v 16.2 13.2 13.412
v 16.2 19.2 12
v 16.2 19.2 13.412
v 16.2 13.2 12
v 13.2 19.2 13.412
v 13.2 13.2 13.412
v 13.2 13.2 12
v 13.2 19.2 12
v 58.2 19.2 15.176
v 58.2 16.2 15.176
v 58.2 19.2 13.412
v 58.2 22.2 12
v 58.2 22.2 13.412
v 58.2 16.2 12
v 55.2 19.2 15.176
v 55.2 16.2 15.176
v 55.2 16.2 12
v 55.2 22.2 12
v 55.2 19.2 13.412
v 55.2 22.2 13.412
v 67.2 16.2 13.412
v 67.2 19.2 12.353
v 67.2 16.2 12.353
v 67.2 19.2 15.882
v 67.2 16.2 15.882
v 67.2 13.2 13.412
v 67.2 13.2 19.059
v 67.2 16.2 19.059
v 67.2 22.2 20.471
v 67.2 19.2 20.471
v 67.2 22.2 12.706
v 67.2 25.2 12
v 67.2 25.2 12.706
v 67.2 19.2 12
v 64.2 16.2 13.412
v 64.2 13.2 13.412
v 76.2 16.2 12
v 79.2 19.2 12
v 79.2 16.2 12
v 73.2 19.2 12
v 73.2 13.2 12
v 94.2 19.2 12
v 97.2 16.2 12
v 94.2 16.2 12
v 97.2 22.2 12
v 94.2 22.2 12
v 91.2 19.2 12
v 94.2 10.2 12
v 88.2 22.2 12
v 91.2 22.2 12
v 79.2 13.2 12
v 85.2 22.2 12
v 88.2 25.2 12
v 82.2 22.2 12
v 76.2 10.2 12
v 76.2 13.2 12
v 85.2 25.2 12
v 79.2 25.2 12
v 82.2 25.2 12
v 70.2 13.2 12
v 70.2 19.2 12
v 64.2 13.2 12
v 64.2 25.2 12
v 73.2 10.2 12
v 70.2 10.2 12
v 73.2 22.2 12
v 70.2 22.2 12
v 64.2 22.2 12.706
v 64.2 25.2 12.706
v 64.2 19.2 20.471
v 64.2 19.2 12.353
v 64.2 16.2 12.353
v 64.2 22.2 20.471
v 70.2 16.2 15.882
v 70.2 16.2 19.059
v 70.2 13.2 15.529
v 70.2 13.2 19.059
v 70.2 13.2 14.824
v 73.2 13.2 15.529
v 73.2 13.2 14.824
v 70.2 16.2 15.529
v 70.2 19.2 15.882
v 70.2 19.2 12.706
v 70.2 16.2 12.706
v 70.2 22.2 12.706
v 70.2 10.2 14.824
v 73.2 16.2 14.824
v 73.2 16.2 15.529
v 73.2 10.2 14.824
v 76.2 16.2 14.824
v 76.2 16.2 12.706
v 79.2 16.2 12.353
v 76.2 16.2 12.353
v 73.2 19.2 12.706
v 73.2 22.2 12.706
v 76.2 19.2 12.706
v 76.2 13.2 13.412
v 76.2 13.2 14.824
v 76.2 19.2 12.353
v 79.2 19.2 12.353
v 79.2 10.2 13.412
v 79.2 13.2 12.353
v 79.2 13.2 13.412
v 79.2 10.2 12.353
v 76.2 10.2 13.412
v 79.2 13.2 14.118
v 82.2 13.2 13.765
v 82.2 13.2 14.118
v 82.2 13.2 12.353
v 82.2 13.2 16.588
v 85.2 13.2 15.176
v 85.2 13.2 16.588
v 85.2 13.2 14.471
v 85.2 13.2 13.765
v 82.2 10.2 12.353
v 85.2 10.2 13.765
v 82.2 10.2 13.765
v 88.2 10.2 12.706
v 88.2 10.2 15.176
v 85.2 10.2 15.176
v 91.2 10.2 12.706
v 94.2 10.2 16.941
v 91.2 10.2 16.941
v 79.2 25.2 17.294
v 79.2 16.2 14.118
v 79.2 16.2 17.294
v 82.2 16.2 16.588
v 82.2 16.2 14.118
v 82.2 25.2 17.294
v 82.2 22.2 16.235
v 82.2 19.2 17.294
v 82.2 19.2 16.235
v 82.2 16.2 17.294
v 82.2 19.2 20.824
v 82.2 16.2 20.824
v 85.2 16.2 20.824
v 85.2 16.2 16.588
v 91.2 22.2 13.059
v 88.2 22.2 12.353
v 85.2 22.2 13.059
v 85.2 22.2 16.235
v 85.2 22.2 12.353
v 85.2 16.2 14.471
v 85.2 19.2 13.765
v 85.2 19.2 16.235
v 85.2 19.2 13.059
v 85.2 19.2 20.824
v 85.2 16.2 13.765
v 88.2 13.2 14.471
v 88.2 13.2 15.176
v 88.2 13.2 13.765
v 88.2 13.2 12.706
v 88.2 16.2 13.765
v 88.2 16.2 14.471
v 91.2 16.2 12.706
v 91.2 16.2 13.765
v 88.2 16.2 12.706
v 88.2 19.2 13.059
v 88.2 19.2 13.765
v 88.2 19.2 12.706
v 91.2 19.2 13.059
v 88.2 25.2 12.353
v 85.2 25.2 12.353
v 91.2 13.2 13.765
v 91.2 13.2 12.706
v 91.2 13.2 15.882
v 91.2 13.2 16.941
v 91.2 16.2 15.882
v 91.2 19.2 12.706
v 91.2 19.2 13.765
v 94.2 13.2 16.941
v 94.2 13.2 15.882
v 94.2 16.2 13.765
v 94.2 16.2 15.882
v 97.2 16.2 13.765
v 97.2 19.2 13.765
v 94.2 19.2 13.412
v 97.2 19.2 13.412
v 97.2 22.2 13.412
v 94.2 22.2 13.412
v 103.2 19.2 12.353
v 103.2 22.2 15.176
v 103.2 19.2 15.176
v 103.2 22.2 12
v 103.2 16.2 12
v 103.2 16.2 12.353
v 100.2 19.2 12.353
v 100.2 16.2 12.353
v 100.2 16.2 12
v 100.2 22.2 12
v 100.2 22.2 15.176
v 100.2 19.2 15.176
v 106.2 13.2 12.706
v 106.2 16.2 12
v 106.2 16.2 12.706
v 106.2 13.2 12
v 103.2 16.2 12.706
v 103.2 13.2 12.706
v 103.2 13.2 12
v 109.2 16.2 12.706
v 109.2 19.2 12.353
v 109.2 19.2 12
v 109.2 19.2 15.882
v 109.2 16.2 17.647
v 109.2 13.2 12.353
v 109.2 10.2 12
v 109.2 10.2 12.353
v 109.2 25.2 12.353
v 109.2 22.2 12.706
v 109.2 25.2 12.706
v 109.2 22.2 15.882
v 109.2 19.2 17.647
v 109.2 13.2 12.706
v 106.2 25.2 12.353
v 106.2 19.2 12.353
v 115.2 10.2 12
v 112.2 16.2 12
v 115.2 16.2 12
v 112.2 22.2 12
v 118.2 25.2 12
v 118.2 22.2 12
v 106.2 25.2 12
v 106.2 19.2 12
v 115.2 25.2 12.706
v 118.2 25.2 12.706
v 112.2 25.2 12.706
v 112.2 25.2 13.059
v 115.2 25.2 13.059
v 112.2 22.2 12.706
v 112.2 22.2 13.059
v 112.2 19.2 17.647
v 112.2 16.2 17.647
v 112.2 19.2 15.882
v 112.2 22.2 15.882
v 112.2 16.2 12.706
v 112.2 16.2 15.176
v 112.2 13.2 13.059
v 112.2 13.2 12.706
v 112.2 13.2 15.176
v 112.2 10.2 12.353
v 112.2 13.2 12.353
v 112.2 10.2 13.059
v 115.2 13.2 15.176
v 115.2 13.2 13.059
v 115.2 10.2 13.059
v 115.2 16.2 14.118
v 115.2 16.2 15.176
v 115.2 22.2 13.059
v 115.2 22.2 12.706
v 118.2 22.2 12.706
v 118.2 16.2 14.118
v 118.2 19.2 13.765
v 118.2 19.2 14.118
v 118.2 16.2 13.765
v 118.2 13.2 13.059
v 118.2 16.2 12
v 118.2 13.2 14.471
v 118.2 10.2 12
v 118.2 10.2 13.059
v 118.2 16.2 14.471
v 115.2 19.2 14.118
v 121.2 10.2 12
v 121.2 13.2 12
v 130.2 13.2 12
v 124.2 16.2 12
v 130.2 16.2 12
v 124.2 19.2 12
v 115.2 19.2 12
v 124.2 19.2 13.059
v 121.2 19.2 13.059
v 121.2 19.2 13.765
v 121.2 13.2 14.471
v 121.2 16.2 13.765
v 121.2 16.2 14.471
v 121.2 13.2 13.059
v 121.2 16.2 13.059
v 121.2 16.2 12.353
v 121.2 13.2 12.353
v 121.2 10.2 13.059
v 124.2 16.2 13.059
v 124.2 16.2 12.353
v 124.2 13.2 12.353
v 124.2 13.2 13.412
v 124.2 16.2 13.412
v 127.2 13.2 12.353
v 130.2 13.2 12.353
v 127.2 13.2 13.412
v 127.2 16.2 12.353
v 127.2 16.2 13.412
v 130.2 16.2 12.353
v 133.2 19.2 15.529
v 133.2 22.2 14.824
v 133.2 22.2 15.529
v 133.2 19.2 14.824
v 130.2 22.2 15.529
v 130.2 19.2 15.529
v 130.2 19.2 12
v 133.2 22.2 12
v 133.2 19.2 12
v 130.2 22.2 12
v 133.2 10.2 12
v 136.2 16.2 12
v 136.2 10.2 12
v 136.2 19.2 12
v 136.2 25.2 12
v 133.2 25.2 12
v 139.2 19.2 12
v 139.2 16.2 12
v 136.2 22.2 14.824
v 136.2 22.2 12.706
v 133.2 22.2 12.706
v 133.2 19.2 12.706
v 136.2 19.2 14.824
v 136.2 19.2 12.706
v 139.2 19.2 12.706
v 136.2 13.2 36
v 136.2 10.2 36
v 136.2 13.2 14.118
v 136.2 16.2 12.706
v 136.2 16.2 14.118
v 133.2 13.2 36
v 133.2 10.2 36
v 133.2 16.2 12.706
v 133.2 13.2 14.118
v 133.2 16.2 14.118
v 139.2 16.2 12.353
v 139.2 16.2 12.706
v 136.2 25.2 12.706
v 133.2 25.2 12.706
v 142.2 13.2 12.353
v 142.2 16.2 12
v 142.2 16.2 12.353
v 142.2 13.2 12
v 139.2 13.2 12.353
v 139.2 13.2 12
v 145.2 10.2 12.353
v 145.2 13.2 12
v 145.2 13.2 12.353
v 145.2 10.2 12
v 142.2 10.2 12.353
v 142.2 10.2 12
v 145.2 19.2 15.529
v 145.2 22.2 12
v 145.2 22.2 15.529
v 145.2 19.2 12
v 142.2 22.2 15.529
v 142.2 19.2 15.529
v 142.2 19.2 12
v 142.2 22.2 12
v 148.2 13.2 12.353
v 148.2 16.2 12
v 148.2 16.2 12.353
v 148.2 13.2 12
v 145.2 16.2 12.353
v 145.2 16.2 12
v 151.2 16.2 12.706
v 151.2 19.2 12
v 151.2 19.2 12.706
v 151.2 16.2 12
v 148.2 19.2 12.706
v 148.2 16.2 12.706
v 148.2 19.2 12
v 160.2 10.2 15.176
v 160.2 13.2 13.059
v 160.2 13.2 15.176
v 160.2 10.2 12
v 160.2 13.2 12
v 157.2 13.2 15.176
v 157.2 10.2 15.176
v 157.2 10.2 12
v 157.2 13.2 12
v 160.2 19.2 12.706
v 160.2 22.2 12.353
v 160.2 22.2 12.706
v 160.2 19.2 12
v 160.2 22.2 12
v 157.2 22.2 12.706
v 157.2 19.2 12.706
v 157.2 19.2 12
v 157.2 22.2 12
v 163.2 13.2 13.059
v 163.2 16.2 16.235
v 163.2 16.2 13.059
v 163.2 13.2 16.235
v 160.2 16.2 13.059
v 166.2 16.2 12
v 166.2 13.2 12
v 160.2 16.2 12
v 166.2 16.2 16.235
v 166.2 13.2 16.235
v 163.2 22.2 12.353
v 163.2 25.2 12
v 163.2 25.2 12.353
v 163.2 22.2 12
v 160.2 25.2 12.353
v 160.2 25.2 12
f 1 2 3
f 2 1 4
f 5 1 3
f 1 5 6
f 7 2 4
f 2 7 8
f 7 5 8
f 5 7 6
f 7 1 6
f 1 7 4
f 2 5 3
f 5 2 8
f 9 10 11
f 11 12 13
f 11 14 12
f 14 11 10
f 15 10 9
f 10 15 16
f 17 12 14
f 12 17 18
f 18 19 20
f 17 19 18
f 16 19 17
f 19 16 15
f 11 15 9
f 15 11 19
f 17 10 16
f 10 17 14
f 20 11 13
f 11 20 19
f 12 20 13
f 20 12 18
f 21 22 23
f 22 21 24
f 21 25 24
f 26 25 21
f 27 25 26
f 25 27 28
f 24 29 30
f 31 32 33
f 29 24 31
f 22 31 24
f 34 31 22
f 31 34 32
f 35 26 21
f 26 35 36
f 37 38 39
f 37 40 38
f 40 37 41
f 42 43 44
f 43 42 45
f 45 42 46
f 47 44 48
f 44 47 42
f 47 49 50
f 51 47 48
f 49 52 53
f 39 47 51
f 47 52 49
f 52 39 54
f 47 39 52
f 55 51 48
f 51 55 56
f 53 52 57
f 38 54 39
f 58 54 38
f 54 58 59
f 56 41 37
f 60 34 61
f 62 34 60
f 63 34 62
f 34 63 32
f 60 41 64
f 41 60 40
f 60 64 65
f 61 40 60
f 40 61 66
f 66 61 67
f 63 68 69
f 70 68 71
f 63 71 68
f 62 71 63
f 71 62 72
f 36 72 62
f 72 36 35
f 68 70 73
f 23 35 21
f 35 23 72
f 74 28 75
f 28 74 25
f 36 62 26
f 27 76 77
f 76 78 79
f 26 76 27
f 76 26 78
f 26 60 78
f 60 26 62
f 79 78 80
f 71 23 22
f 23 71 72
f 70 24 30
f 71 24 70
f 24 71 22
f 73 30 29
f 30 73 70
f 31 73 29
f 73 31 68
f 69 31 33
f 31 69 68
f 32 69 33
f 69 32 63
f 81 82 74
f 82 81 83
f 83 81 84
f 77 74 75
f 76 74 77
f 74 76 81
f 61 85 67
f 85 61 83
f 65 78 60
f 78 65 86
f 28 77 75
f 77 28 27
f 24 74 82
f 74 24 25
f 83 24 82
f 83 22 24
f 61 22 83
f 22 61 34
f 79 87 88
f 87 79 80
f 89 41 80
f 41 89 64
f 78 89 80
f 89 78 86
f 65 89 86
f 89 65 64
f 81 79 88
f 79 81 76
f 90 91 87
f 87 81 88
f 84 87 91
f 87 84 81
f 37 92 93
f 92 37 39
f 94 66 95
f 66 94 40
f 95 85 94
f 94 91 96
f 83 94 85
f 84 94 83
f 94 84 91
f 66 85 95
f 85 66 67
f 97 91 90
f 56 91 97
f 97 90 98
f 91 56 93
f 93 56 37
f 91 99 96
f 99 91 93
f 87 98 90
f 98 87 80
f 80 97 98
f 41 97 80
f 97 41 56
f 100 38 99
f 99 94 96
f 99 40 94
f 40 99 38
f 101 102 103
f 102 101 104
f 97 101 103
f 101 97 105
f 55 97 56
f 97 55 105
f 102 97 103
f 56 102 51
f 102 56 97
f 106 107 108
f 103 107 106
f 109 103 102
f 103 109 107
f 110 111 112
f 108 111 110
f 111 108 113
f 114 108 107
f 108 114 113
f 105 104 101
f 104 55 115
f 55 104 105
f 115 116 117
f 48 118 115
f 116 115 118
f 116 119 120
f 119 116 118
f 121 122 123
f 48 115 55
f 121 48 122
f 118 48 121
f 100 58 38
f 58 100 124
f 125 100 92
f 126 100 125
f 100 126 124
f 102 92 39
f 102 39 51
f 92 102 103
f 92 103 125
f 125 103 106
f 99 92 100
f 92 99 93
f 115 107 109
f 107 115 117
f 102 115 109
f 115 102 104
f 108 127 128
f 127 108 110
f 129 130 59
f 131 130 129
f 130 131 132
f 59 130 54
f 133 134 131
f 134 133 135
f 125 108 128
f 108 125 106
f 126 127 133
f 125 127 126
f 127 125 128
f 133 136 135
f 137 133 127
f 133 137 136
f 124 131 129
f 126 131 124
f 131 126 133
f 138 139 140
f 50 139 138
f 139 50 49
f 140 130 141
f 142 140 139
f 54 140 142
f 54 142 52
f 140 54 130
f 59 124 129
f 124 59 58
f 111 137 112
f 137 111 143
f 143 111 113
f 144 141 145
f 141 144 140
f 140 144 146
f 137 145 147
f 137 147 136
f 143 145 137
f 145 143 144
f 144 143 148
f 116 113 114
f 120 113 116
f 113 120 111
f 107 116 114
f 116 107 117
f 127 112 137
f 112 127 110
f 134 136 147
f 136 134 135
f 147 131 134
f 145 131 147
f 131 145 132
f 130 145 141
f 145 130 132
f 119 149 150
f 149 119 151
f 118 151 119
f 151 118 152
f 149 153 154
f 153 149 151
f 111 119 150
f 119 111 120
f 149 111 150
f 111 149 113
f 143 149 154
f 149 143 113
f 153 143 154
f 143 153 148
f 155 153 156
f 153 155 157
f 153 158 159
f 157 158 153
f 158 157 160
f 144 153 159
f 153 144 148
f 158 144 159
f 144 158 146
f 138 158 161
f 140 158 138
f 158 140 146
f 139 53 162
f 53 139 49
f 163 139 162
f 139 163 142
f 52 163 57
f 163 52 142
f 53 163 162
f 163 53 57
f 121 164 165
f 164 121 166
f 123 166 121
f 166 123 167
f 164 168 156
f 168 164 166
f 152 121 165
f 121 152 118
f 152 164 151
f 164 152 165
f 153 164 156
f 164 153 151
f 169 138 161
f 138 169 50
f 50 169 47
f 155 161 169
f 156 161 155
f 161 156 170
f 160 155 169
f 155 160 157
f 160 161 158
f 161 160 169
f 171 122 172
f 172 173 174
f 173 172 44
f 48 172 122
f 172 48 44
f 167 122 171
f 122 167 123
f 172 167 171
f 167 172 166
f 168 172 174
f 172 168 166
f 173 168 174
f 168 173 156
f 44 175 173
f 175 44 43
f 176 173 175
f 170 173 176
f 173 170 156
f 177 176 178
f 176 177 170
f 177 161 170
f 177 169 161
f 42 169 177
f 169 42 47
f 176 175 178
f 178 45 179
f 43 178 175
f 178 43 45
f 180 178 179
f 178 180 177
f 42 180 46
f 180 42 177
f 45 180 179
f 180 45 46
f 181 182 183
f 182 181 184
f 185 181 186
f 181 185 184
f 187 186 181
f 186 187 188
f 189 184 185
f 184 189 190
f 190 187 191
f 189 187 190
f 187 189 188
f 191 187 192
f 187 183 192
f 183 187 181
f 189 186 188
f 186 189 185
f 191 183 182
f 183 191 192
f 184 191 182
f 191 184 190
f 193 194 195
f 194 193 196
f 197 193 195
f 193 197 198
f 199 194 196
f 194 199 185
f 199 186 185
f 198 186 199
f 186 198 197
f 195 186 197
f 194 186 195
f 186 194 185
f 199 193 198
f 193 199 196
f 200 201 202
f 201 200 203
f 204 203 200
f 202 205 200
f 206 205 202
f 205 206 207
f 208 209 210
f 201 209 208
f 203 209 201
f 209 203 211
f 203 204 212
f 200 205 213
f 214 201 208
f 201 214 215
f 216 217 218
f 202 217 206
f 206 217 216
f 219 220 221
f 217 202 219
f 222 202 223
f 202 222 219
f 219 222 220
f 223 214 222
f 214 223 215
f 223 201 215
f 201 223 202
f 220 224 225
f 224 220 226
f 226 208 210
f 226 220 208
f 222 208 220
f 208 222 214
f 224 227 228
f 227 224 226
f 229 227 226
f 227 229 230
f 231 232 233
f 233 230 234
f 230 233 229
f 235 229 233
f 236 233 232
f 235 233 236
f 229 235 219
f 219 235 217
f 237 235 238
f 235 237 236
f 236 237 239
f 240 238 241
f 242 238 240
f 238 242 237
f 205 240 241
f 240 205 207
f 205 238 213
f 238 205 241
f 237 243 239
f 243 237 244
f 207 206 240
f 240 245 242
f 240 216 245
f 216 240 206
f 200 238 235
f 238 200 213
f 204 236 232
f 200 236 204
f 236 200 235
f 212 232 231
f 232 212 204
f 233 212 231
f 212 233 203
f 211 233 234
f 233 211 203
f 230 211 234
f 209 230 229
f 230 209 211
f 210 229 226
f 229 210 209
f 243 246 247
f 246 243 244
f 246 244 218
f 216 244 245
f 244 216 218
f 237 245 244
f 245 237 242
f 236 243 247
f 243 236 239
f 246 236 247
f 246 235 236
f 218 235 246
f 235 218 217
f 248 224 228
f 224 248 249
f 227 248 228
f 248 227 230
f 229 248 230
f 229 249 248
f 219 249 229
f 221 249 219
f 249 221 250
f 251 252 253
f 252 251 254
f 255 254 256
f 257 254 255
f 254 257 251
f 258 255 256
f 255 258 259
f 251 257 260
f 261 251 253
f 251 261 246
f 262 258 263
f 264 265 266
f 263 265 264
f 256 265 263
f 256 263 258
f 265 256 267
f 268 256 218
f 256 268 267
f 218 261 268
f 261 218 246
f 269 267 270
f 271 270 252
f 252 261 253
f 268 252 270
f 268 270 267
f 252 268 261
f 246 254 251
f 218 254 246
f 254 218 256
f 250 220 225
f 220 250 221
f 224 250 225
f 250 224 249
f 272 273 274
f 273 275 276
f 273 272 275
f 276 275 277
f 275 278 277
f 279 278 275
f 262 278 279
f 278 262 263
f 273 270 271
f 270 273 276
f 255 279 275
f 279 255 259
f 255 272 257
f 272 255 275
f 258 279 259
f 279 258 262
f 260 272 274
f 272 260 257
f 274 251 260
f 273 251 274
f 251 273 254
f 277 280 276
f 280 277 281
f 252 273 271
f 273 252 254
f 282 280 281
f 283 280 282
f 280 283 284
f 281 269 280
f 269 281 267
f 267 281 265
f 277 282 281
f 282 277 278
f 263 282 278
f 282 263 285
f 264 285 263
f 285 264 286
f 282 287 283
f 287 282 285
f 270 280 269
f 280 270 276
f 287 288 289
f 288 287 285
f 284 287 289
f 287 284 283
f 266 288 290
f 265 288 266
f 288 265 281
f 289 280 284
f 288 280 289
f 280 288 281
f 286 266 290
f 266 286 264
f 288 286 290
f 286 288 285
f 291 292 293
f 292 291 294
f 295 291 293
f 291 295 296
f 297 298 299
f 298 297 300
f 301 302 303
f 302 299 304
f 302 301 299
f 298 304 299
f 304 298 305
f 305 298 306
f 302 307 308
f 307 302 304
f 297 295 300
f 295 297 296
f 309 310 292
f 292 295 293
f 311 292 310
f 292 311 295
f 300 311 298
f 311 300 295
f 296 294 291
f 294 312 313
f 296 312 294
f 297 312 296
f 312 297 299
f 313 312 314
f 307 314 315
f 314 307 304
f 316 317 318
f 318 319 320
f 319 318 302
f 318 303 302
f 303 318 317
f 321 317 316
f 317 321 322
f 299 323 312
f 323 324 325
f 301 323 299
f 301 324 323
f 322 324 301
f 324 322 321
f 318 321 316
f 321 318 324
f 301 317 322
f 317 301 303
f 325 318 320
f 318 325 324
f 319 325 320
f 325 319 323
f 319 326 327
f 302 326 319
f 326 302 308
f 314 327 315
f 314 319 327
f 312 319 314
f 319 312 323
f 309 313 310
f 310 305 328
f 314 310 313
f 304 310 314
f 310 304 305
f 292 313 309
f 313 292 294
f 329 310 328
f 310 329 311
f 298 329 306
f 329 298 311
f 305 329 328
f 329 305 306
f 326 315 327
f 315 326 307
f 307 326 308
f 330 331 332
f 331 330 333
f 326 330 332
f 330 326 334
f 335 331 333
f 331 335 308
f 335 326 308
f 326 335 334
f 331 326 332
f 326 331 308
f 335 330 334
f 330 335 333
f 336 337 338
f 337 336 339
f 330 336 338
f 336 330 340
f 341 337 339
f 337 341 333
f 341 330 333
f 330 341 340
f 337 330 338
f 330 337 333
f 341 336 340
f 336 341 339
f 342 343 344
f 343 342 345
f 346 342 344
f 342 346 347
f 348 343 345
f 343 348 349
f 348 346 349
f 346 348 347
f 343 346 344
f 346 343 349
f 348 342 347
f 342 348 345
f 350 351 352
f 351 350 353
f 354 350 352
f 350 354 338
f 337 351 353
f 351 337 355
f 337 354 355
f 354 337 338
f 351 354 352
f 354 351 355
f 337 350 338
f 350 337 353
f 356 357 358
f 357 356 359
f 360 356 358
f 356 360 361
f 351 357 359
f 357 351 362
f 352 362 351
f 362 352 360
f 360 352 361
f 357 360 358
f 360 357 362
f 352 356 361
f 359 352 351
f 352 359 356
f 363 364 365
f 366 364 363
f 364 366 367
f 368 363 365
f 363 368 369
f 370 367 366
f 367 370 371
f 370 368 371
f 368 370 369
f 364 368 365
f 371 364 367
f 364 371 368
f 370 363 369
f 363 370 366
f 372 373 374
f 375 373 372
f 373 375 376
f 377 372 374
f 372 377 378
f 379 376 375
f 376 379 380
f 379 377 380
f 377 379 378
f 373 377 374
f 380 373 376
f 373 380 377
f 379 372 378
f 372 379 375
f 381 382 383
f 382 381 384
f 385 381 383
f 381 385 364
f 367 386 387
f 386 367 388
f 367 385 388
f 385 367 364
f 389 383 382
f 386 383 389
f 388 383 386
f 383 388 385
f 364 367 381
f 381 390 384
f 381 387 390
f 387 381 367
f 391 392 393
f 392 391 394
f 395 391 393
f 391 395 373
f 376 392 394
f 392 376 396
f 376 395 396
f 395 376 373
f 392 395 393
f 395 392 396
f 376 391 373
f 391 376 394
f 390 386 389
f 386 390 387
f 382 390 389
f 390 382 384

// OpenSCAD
union() {
	translate(v = [13.200000000000001, 13.200000000000001, 12.0]) {
		cube(size = [3.0, 3.0, 1.411764705882353]);
	}
	translate(v = [13.200000000000001, 16.200000000000003, 12.0]) {
		cube(size = [3.0, 3.0, 1.411764705882353]);
	}
	translate(v = [55.2, 16.200000000000003, 12.0]) {
		cube(size = [3.0, 3.0, 3.176470588235294]);
	}
	translate(v = [55.2, 19.200000000000003, 12.0]) {
		cube(size = [3.0, 3.0, 1.411764705882353]);
	}
	translate(v = [64.2, 13.200000000000001, 12.0]) {
		cube(size = [3.0, 3.0, 1.411764705882353]);
	}
	translate(v = [64.2, 16.200000000000003, 12.0]) {
		cube(size = [3.0, 3.0, 0.35294117647058826]);
	}
	translate(v = [64.2, 19.200000000000003, 12.0]) {
		cube(size = [3.0, 3.0, 8.470588235294118]);
	}
	translate(v = [64.2, 22.200000000000003, 12.0]) {
		cube(size = [3.0, 3.0, 0.7058823529411765]);
	}
	translate(v = [67.2, 13.200000000000001, 12.0]) {
		cube(size = [3.0, 3.0, 7.0588235294117645]);
	}
	translate(v = [67.2, 16.200000000000003, 12.0]) {
		cube(size = [3.0, 3.0, 3.8823529411764706]);
	}
	translate(v = [70.2, 10.200000000000001, 12.0]) {
		cube(size = [3.0, 3.0, 2.823529411764706]);
	}
	translate(v = [70.2, 13.200000000000001, 12.0]) {
		cube(size = [3.0, 3.0, 3.5294117647058822]);
	}
	translate(v = [70.2, 16.200000000000003, 12.0]) {
		cube(size = [3.0, 3.0, 0.7058823529411765]);
	}
	translate(v = [70.2, 19.200000000000003, 12.0]) {
		cube(size = [3.0, 3.0, 0.7058823529411765]);
	}
	translate(v = [73.2, 13.200000000000001, 12.0]) {
		cube(size = [3.0, 3.0, 2.823529411764706]);
	}
	translate(v = [73.2, 16.200000000000003, 12.0]) {
		cube(size = [3.0, 3.0, 0.7058823529411765]);
	}
	translate(v = [76.2, 10.200000000000001, 12.0]) {
		cube(size = [3.0, 3.0, 1.411764705882353]);
	}
	translate(v = [76.2, 16.200000000000003, 12.0]) {
		cube(size = [3.0, 3.0, 0.35294117647058826]);
	}
	translate(v = [79.2, 10.200000000000001, 12.0]) {
		cube(size = [3.0, 3.0, 0.35294117647058826]);
	}
	translate(v = [79.2, 13.200000000000001, 12.0]) {
		cube(size = [3.0, 3.0, 2.1176470588235294]);
	}
	translate(v = [79.2, 16.200000000000003, 12.0]) {
		cube(size = [3.0, 3.0, 5.294117647058823]);
	}
	translate(v = [79.2, 19.200000000000003, 12.0]) {
		cube(size = [3.0, 3.0, 5.294117647058823]);
	}
	translate(v = [79.2, 22.200000000000003, 12.0]) {
		cube(size = [3.0, 3.0, 5.294117647058823]);
	}
	translate(v = [82.2, 10.200000000000001, 12.0]) {
		cube(size = [3.0, 3.0, 1.7647058823529411]);
	}
	translate(v = [82.2, 13.200000000000001, 12.0]) {
		cube(size = [3.0, 3.0, 4.588235294117647]);
	}
	translate(v = [82.2, 16.200000000000003, 12.0]) {
		cube(size = [3.0, 3.0, 8.823529411764707]);
	}
	translate(v = [82.2, 19.200000000000003, 12.0]) {
		cube(size = [3.0, 3.0, 4.235294117647059]);
	}
	translate(v = [85.2, 10.200000000000001, 12.0]) {
		cube(size = [3.0, 3.0, 3.176470588235294]);
	}
	translate(v = [85.2, 13.200000000000001, 12.0]) {
		cube(size = [3.0, 3.0, 2.4705882352941178]);
	}
	translate(v = [85.2, 16.200000000000003, 12.0]) {
		cube(size = [3.0, 3.0, 1.7647058823529411]);
	}
	translate(v = [85.2, 19.200000000000003, 12.0]) {
		cube(size = [3.0, 3.0, 1.0588235294117647]);
	}
	translate(v = [85.2, 22.200000000000003, 12.0]) {
		cube(size = [3.0, 3.0, 0.35294117647058826]);
	}
	translate(v = [88.2, 10.200000000000001, 12.0]) {
		cube(size = [3.0, 3.0, 0.7058823529411765]);
	}
	translate(v = [88.2, 13.200000000000001, 12.0]) {
		cube(size = [3.0, 3.0, 1.7647058823529411]);
	}
	translate(v = [88.2, 16.200000000000003, 12.0]) {
		cube(size = [3.0, 3.0, 0.7058823529411765]);
	}
	translate(v = [88.2, 19.200000000000003, 12.0]) {
		cube(size = [3.0, 3.0, 1.0588235294117647]);
	}
	translate(v = [91.2, 10.200000000000001, 12.0]) {
		cube(size = [3.0, 3.0, 4.9411764705882355]);
	}
	translate(v = [91.2, 13.200000000000001, 12.0]) {
		cube(size = [3.0, 3.0, 3.8823529411764706]);
	}
	translate(v = [91.2, 16.200000000000003, 12.0]) {
		cube(size = [3.0, 3.0, 1.7647058823529411]);
	}
	translate(v = [94.2, 16.200000000000003, 12.0]) {
		cube(size = [3.0, 3.0, 1.7647058823529411]);
	}
	translate(v = [94.2, 19.200000000000003, 12.0]) {
		cube(size = [3.0, 3.0, 1.411764705882353]);
	}
	translate(v = [100.2, 16.200000000000003, 12.0]) {
		cube(size = [3.0, 3.0, 0.35294117647058826]);
	}
	translate(v = [100.2, 19.200000000000003, 12.0]) {
		cube(size = [3.0, 3.0, 3.176470588235294]);
	}
	translate(v = [103.2, 13.200000000000001, 12.0]) {
		cube(size = [3.0, 3.0, 0.7058823529411765]);
	}
	translate(v = [106.2, 19.200000000000003, 12.0]) {
		cube(size = [3.0, 3.0, 0.35294117647058826]);
	}
	translate(v = [106.2, 22.200000000000003, 12.0]) {
		cube(size = [3.0, 3.0, 0.35294117647058826]);
	}
	translate(v = [109.2, 10.200000000000001, 12.0]) {
		cube(size = [3.0, 3.0, 0.35294117647058826]);
	}
	translate(v = [109.2, 13.200000000000001, 12.0]) {
		cube(size = [3.0, 3.0, 0.7058823529411765]);
	}
	translate(v = [109.2, 16.200000000000003, 12.0]) {
		cube(size = [3.0, 3.0, 5.647058823529412]);
	}
	translate(v = [109.2, 19.200000000000003, 12.0]) {
		cube(size = [3.0, 3.0, 3.8823529411764706]);
	}
	translate(v = [109.2, 22.200000000000003, 12.0]) {
		cube(size = [3.0, 3.0, 0.7058823529411765]);
	}
	translate(v = [112.2, 10.200000000000001, 12.0]) {
		cube(size = [3.0, 3.0, 1.0588235294117647]);
	}
	translate(v = [112.2, 13.200000000000001, 12.0]) {
		cube(size = [3.0, 3.0, 3.176470588235294]);
	}
	translate(v = [112.2, 22.200000000000003, 12.0]) {
		cube(size = [3.0, 3.0, 1.0588235294117647]);
	}
	translate(v = [115.2, 16.200000000000003, 12.0]) {
		cube(size = [3.0, 3.0, 2.1176470588235294]);
	}
	translate(v = [115.2, 22.200000000000003, 12.0]) {
		cube(size = [3.0, 3.0, 0.7058823529411765]);
	}
	translate(v = [118.2, 10.200000000000001, 12.0]) {
		cube(size = [3.0, 3.0, 1.0588235294117647]);
	}
	translate(v = [118.2, 13.200000000000001, 12.0]) {
		cube(size = [3.0, 3.0, 2.4705882352941178]);
	}
	translate(v = [118.2, 16.200000000000003, 12.0]) {
		cube(size = [3.0, 3.0, 1.7647058823529411]);
	}
	translate(v = [121.2, 13.200000000000001, 12.0]) {
		cube(size = [3.0, 3.0, 0.35294117647058826]);
	}
	translate(v = [121.2, 16.200000000000003, 12.0]) {
		cube(size = [3.0, 3.0, 1.0588235294117647]);
	}
	translate(v = [124.2, 13.200000000000001, 12.0]) {
		cube(size = [3.0, 3.0, 1.411764705882353]);
	}
	translate(v = [127.2, 13.200000000000001, 12.0]) {
		cube(size = [3.0, 3.0, 0.35294117647058826]);
	}
	translate(v = [130.2, 19.200000000000003, 12.0]) {
		cube(size = [3.0, 3.0, 3.5294117647058822]);
	}
	translate(v = [133.2, 10.200000000000001, 12.0]) {
		cube(size = [3.0, 3.0, 24.0]);
	}
	translate(v = [133.2, 13.200000000000001, 12.0]) {
		cube(size = [3.0, 3.0, 2.1176470588235294]);
	}
	translate(v = [133.2, 16.200000000000003, 12.0]) {
		cube(size = [3.0, 3.0, 0.7058823529411765]);
	}
	translate(v = [133.2, 19.200000000000003, 12.0]) {
		cube(size = [3.0, 3.0, 2.823529411764706]);
	}
	translate(v = [133.2, 22.200000000000003, 12.0]) {
		cube(size = [3.0, 3.0, 0.7058823529411765]);
	}
	translate(v = [136.2, 16.200000000000003, 12.0]) {
		cube(size = [3.0, 3.0, 0.7058823529411765]);
	}
	translate(v = [139.2, 13.200000000000001, 12.0]) {
		cube(size = [3.0, 3.0, 0.35294117647058826]);
	}
	translate(v = [142.2, 10.200000000000001, 12.0]) {
		cube(size = [3.0, 3.0, 0.35294117647058826]);
	}
	translate(v = [142.2, 19.200000000000003, 12.0]) {
		cube(size = [3.0, 3.0, 3.5294117647058822]);
	}
	translate(v = [145.2, 13.200000000000001, 12.0]) {
		cube(size = [3.0, 3.0, 0.35294117647058826]);
	}
	translate(v = [148.2, 16.200000000000003, 12.0]) {
		cube(size = [3.0, 3.0, 0.7058823529411765]);
	}
	translate(v = [157.2, 10.200000000000001, 12.0]) {
		cube(size = [3.0, 3.0, 3.176470588235294]);
	}
	translate(v = [157.2, 19.200000000000003, 12.0]) {
		cube(size = [3.0, 3.0, 0.7058823529411765]);
	}
	translate(v = [160.2, 13.200000000000001, 12.0]) {
		cube(size = [3.0, 3.0, 1.0588235294117647]);
	}
	translate(v = [160.2, 22.200000000000003, 12.0]) {
		cube(size = [3.0, 3.0, 0.35294117647058826]);
	}
	translate(v = [163.2, 13.200000000000001, 12.0]) {
		cube(size = [3.0, 3.0, 4.235294117647059]);
	}
}
